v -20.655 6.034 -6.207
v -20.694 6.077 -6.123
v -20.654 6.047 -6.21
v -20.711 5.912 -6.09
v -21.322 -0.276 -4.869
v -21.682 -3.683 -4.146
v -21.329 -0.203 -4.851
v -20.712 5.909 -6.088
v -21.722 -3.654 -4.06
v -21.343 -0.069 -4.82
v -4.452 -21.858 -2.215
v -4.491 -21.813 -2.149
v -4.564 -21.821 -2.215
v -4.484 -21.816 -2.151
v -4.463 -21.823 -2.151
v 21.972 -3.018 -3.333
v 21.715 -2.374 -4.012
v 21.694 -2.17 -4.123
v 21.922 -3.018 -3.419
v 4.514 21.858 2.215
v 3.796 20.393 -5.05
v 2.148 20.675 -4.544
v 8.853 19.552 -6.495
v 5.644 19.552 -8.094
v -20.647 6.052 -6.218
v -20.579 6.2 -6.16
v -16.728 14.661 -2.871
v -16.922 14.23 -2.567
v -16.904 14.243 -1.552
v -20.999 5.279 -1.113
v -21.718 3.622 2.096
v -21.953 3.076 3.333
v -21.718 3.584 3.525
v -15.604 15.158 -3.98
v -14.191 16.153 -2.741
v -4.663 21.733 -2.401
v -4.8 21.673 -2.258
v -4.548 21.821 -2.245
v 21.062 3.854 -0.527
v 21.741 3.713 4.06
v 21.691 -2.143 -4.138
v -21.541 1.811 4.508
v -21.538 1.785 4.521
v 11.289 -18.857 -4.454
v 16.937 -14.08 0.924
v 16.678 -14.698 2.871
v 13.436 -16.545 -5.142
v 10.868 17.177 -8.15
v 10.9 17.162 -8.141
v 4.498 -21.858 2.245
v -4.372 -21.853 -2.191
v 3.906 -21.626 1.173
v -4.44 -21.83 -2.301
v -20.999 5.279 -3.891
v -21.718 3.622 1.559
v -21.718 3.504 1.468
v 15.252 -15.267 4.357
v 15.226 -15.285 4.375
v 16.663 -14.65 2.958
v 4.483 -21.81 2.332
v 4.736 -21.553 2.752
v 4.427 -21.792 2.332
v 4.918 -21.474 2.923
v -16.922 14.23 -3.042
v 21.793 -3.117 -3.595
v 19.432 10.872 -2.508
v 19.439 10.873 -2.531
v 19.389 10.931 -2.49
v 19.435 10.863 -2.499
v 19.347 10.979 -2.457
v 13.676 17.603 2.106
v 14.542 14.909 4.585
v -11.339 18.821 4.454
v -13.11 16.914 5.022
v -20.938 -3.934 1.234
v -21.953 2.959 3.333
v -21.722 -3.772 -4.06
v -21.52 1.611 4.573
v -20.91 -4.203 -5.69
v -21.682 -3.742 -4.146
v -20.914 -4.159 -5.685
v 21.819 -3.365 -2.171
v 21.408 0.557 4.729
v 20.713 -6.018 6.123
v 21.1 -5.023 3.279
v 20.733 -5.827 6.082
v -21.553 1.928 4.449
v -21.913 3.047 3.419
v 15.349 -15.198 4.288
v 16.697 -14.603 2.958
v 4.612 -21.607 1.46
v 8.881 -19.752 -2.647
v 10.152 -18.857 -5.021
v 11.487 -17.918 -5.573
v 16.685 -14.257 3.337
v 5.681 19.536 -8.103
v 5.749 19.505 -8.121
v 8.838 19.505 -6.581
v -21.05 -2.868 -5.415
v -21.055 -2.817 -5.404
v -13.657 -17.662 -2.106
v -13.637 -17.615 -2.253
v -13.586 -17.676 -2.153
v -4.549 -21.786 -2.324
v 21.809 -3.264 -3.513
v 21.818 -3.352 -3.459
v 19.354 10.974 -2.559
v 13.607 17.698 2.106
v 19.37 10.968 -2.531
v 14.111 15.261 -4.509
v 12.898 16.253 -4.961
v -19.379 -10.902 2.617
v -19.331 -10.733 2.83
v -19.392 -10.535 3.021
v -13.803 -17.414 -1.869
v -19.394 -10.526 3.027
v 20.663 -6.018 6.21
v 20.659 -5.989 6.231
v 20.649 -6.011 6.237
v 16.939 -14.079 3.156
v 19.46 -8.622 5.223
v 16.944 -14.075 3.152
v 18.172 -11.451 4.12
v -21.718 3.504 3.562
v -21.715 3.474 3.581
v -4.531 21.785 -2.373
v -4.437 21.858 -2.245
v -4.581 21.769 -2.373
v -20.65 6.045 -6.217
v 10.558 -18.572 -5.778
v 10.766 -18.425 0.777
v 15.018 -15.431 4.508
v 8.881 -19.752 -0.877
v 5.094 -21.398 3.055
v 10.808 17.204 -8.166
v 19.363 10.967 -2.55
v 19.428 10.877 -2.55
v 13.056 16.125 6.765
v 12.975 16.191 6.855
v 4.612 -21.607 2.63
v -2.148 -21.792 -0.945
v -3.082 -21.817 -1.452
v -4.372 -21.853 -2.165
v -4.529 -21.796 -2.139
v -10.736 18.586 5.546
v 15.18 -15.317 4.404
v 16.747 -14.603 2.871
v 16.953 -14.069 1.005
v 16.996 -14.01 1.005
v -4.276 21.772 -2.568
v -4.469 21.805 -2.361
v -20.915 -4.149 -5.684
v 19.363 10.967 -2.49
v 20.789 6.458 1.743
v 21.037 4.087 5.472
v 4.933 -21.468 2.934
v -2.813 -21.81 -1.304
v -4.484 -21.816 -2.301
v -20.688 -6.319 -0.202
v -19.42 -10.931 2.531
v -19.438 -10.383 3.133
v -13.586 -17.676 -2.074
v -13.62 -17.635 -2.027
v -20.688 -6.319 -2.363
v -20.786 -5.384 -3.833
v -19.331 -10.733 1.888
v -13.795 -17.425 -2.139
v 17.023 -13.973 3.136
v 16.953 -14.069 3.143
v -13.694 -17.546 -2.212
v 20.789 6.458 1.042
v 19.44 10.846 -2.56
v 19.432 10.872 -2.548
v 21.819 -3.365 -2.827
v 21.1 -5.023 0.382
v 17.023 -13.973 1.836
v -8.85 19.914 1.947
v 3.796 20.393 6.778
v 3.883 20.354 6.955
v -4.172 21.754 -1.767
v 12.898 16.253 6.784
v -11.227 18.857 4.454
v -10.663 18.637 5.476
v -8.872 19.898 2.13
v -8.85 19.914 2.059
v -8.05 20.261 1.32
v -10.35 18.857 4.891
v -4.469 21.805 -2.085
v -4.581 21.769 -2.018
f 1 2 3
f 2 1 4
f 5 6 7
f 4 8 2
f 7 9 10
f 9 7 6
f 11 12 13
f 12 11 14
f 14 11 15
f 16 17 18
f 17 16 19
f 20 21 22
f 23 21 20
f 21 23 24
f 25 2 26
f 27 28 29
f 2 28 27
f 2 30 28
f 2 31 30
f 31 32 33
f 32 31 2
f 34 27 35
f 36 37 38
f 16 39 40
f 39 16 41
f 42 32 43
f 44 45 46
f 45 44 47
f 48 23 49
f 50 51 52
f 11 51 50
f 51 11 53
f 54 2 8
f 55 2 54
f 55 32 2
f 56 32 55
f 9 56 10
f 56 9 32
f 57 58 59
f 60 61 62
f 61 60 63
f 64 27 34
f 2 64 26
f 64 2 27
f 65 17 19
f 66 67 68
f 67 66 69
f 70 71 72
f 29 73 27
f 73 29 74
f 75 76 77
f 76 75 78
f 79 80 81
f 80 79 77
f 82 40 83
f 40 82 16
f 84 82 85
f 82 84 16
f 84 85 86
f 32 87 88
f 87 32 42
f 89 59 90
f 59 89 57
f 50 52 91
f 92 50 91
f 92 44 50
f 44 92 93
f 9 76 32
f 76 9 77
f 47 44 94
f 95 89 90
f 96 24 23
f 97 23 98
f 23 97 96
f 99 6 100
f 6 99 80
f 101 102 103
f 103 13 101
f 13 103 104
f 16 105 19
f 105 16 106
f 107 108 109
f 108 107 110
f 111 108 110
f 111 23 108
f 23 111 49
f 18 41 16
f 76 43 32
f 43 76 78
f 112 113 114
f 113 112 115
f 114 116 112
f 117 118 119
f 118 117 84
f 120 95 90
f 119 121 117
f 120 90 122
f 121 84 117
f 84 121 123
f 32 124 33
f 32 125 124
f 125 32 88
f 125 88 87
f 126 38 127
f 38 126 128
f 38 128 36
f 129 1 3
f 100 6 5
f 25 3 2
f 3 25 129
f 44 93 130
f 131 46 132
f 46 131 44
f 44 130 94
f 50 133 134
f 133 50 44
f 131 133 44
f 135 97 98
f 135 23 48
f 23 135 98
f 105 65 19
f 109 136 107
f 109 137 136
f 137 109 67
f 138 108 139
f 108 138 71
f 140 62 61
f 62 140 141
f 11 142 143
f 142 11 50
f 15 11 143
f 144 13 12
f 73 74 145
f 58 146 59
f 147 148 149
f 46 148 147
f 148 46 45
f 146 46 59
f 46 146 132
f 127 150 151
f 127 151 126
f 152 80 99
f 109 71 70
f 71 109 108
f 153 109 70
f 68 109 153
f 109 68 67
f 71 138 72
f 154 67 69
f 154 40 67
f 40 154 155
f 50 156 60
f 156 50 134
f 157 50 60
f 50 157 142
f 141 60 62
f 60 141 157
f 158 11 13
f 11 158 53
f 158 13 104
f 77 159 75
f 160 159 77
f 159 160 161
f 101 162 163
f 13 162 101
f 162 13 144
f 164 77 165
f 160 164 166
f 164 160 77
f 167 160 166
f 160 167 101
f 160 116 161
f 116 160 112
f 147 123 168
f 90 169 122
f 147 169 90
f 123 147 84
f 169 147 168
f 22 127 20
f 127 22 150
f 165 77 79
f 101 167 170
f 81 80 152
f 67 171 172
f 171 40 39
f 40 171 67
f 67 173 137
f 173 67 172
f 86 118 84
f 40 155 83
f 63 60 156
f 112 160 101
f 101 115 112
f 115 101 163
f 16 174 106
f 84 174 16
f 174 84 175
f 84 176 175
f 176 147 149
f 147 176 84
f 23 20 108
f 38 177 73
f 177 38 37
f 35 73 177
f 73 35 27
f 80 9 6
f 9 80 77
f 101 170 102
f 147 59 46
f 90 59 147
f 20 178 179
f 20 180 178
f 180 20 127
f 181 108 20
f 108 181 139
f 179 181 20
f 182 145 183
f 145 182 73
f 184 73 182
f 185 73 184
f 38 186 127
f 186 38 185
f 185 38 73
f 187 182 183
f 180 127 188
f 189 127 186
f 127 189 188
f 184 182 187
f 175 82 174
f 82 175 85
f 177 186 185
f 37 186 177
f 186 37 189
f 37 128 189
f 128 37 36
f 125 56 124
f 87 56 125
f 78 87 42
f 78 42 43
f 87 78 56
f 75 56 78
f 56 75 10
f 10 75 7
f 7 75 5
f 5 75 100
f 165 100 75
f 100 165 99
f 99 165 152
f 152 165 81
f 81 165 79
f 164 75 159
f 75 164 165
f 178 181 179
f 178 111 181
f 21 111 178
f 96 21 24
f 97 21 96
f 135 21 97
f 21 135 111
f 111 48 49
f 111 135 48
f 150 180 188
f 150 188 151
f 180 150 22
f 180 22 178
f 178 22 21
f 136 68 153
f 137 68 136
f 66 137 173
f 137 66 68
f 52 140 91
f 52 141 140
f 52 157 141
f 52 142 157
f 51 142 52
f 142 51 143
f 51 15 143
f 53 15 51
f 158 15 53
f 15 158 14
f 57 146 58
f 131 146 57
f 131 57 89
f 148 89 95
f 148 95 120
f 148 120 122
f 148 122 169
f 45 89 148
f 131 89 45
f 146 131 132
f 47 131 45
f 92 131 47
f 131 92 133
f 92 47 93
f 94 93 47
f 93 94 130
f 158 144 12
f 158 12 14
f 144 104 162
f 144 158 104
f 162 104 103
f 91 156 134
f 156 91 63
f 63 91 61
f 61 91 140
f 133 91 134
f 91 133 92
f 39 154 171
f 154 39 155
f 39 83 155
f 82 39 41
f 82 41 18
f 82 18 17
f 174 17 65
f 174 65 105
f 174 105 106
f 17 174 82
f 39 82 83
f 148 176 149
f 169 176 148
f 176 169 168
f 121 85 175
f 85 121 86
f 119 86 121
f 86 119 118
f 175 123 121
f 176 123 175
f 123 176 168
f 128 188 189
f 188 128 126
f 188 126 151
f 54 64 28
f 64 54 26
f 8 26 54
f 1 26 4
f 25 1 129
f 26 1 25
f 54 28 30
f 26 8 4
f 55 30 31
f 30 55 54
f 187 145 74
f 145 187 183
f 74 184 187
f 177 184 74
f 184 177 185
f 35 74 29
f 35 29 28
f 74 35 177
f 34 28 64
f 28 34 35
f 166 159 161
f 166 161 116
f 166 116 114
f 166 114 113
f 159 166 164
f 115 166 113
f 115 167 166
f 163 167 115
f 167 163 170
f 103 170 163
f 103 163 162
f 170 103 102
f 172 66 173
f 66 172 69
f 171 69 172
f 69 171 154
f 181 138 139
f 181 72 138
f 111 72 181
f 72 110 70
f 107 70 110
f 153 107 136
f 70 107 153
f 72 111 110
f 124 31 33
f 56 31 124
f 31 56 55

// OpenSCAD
// Auto-generated OpenSCAD file

    inner_points = 10*[[1.6419395506328012, 0.4602929851836759, -1.4493631210210838], [-2.163745004596259, 0.35631876074276486, 0.40811536788318015], [1.7450099255654523, -0.5220418917143825, -1.2931751335159007], [-2.060674629663608, -0.6260161161552936, 0.5643033553883631], [2.0688511081140133, 0.6458077645062935, -0.5643033553883631], [-1.736833447115047, 0.5418335400653824, 1.2931751335159007], [2.171921483046664, -0.33652711239176486, -0.40811536788318015], [-1.633763072182396, -0.4405013368326759, 1.4493631210210838], [-0.5024600091989292, 0.12040914704172646, -2.1719262545002076], [-1.40086026515404, 0.0958641621658513, -1.7334350643752123], [-0.39938963426627816, -0.861925729856332, -2.0157382669950246], [-1.297789890221389, -0.8864707147322072, -1.5772470768700293], [1.3059663686717942, 0.9062623630832071, 1.5772470768700293], [0.4075661127166832, 0.8817173782073319, 2.0157382669950246], [1.4090367436044453, -0.07607251381485132, 1.7334350643752123], [0.5106364876493342, -0.10061749869072649, 2.1719262545002076], [-0.876874224833509, 1.9854845996807855, -0.5540957539242841], [0.45813914580270193, -2.151207730652403, -0.3309640117084364], [-0.4402611101524089, -2.175752715528278, 0.10752717841655868], [-0.4499626673522969, 2.170999379003403, 0.3309640117084364], [0.885050703283914, -1.9656929513297854, 0.5540957539242841], [-0.01334955267119673, -1.9902379362056606, 0.9925869440492793], [-1.7560539639518336, 1.2513865774351467, 0.5887852848583058], [1.7642304424022388, -1.2315949290841466, -0.5887852848583058], [-1.4862122191449578, -1.3203995186184145, 0.9976907447813188], [0.40781917944265544, -0.29357376199763685, -2.1750805768244144], [-1.94422322614943, -0.3578333666560299, -1.0270957373097849], [1.9523997045998354, 0.3776250150070299, 1.0270957373097849], [-0.3996427009922504, 0.31336541034863685, 2.1750805768244144], [-0.7412023044825446, 1.5441143118102854, -1.4411049979648374], [-0.368290184743018, -2.0100066611413343, -0.8760115505366415], [0.37646666319342303, 2.0297983094923344, 0.8760115505366415], [0.7493787829329497, -1.5243226634592852, 1.4411049979648374], [0.8155102200870809, 0.6014940546947446, -1.9944106598492888], [-2.091774079186868, 0.5220648151297087, -0.57542336107002], [0.9822815899613055, -0.987957164460758, -1.741693187431459], [-1.9250027093126436, -1.0673864040257937, -0.3227058886521901], [1.9331791877630489, 1.0871780523767938, 0.3227058886521901], [-0.9741051115109005, 1.007748812811758, 1.741693187431459], [2.0999505576372735, -0.5022731667787088, 0.57542336107002], [-0.8073337416366758, -0.5817024063437447, 1.9944106598492888], [-0.09476896855450376, 1.0154769637341081, -1.9912563375250816], [-1.5484111181914781, 0.97576234395159, -1.2817626881354474], [0.17507277625237197, -1.5563091323194531, -1.5823508776020687], [-1.2785693733846024, -1.5960237521019711, -0.8728572282124344], [1.2867458518350077, 1.6158154004529712, 0.8728572282124344], [-0.16689629780196688, 1.5761007806704532, 1.5823508776020687], [1.5565875966418834, -0.9559706956005901, 1.2817626881354474], [0.10294544700490885, -0.9956853153831081, 1.9912563375250816], [-1.6840830385424423, 1.4171326318220903, -0.3947534440948942], [1.001502106798092, -1.6975102018305217, -1.0373033387738637], [-1.3505402987939932, -1.761769806488915, 0.11068150074076566], [-0.9933256283476869, 1.7173018501815218, 1.0373033387738637], [1.6922595169928476, -1.3973409834710901, 0.3947534440948942], [-0.659782888599238, -1.4616005881294833, 1.5427382836095238]];

    outer_points = 10*[[-1.4180906408512854, 0.0017142914815234112, 1.7248431734608507], [0.42024133545743264, -0.9747819964248692, -1.9645012743489607], [-1.3152829421925452, 0.9747819964248692, 1.5185186264656285], [0.5230490341161731, -0.0017142914815234112, -2.1708258213441827], [-0.5230490341161731, 0.0017142914815234112, 2.1708258213441827], [1.3152829421925452, -0.9747819964248692, -1.5185186264656285], [-0.42024133545743264, 0.9747819964248692, 1.9645012743489607], [1.4180906408512854, -0.0017142914815234112, -1.7248431734608507], [-2.16411804954985, -0.3712741006106156, -0.40597609206469265], [-1.73014673792946, -0.6017936043327301, -1.276912174159233], [-2.06131035089111, 0.6017936043327301, -0.6123006390599148], [-1.6273390392707197, 0.3712741006106156, -1.4832367211544553], [1.6273390392707197, -0.3712741006106156, 1.4832367211544553], [2.06131035089111, -0.6017936043327301, 0.6123006390599148], [1.73014673792946, 0.6017936043327301, 1.276912174159233], [2.16411804954985, 0.3712741006106156, 0.40597609206469265], [-0.4482853476217299, -2.176250224285918, -0.22145696173963106], [-0.44675625911338257, 2.176250224285918, -0.22452568614370114], [-0.012784947492992194, 1.9457307205638033, -1.0954617682382417], [0.44675625911338257, -2.176250224285918, 0.22452568614370114], [0.4482853476217299, 2.176250224285918, 0.22145696173963106], [0.8822566592421203, 1.9457307205638033, -0.6494791203549095], [0.6504844530956028, -1.6907758622164506, -1.3054558351499], [-0.6504844530956028, 1.6907758622164506, 1.3054558351499], [0.9196385024893416, 0.8567484626800828, -1.845620511896816], [-2.187221299238754, 0.30175394790712673, 0.33327994325880184], [-1.0510696552741998, -0.30175394790712673, -1.9468603216933742], [1.0510696552741998, 0.30175394790712673, 1.9468603216933742], [2.187221299238754, -0.30175394790712673, -0.33327994325880184], [-1.3576055479151603, -1.7602960149199394, -0.21055425340455092], [-0.985643799862681, 1.7602960149199394, -0.9570434771466892], [0.985643799862681, -1.7602960149199394, 0.9570434771466892], [1.3576055479151603, 1.7602960149199394, 0.21055425340455092], [-1.9569781816005838, -0.4142399178844547, 0.9923253824578624], [-0.5526175169122562, -1.1602167020687328, -1.8260829832574081], [-1.790631830865585, 1.1602167020687328, 0.658485252706168], [-0.38627116617725754, 0.4142399178844547, -2.1599231130091026], [0.38627116617725754, -0.4142399178844547, 2.1599231130091026], [1.790631830865585, -1.1602167020687328, -0.658485252706168], [0.5526175169122562, 1.1602167020687328, 1.8260829832574081], [1.9569781816005838, 0.4142399178844547, -0.9923253824578624], [-1.9338749319116801, -1.0872679664021971, 0.2530693471343679], [-1.2316945995675164, -1.4602563584943362, -1.1561348357232673], [-1.6647208825179411, 1.4602563584943362, -0.28709532961254836], [-0.9625405501737774, 1.0872679664021971, -1.6962995124701836], [0.9625405501737774, -1.0872679664021971, 1.6962995124701836], [1.6647208825179411, -1.4602563584943362, 0.28709532961254836], [1.2316945995675164, 1.4602563584943362, 1.1561348357232673], [1.9338749319116801, 1.0872679664021971, -0.2530693471343679], [-0.322374399274086, -1.8762105678603143, -1.1670375440583476], [-1.1258333417686428, 1.8762105678603143, 0.4454224613904398], [0.010318302195911455, 1.2727026720460608, -1.8347178035617362], [1.1258333417686428, -1.8762105678603143, -0.4454224613904398], [0.322374399274086, 1.8762105678603143, 1.1670375440583476], [1.4585260432386402, 1.2727026720460608, -1.1131027208938282]];

    // Convex hull for inner set (I)
    module inner_hull() {
        hull() {
            for (p = inner_points) {
                translate(p) sphere(r=0.1);
            }
        }
    }

    // Convex hull for outer set (O) minus inner hull (O \ I)
    module outer_minus_inner() {
        difference() {
            hull() {
                for (p = outer_points) {
                    translate(p) sphere(r=0.1);
                }
            }
            inner_hull(); // Subtract inner hull
        }
    }

    // Convex hull for outer set (O) minus all translated inner hulls
    module outer_minus_AllTranslationInner() {
        difference() {
            hull() {
                for (p = outer_points) {
                    translate(p) sphere(r=0.1);
                }
            }
            hull() {
                translate([0,0,50]) inner_hull();
                translate([0,0,-50]) inner_hull();
            }; // Subtract translated inner hulls
        }
    }

    // Difference between outer_minus_inner and outer_minus_AllTranslationInner
    module outer_minus_inner_diff() {
        difference() {
            // Outer minus inner
            difference() {
                hull() {
                    for (p = outer_points) {
                        translate(p) sphere(r=0.1);
                    }
                }
                inner_hull();
            }

            // Subtract Outer minus AllTranslationInner
            difference() {
                hull() {
                    for (p = outer_points) {
                        translate(p) sphere(r=0.1);
                    }
                }
                hull() {
                    translate([0,0,50]) inner_hull();
                    translate([0,0,-50]) inner_hull();
                };
            }
        }
    }

    // Rendering all with colors applied
    color([0, 1, 0, 1]) outer_minus_AllTranslationInner(); // Opaque green
    
